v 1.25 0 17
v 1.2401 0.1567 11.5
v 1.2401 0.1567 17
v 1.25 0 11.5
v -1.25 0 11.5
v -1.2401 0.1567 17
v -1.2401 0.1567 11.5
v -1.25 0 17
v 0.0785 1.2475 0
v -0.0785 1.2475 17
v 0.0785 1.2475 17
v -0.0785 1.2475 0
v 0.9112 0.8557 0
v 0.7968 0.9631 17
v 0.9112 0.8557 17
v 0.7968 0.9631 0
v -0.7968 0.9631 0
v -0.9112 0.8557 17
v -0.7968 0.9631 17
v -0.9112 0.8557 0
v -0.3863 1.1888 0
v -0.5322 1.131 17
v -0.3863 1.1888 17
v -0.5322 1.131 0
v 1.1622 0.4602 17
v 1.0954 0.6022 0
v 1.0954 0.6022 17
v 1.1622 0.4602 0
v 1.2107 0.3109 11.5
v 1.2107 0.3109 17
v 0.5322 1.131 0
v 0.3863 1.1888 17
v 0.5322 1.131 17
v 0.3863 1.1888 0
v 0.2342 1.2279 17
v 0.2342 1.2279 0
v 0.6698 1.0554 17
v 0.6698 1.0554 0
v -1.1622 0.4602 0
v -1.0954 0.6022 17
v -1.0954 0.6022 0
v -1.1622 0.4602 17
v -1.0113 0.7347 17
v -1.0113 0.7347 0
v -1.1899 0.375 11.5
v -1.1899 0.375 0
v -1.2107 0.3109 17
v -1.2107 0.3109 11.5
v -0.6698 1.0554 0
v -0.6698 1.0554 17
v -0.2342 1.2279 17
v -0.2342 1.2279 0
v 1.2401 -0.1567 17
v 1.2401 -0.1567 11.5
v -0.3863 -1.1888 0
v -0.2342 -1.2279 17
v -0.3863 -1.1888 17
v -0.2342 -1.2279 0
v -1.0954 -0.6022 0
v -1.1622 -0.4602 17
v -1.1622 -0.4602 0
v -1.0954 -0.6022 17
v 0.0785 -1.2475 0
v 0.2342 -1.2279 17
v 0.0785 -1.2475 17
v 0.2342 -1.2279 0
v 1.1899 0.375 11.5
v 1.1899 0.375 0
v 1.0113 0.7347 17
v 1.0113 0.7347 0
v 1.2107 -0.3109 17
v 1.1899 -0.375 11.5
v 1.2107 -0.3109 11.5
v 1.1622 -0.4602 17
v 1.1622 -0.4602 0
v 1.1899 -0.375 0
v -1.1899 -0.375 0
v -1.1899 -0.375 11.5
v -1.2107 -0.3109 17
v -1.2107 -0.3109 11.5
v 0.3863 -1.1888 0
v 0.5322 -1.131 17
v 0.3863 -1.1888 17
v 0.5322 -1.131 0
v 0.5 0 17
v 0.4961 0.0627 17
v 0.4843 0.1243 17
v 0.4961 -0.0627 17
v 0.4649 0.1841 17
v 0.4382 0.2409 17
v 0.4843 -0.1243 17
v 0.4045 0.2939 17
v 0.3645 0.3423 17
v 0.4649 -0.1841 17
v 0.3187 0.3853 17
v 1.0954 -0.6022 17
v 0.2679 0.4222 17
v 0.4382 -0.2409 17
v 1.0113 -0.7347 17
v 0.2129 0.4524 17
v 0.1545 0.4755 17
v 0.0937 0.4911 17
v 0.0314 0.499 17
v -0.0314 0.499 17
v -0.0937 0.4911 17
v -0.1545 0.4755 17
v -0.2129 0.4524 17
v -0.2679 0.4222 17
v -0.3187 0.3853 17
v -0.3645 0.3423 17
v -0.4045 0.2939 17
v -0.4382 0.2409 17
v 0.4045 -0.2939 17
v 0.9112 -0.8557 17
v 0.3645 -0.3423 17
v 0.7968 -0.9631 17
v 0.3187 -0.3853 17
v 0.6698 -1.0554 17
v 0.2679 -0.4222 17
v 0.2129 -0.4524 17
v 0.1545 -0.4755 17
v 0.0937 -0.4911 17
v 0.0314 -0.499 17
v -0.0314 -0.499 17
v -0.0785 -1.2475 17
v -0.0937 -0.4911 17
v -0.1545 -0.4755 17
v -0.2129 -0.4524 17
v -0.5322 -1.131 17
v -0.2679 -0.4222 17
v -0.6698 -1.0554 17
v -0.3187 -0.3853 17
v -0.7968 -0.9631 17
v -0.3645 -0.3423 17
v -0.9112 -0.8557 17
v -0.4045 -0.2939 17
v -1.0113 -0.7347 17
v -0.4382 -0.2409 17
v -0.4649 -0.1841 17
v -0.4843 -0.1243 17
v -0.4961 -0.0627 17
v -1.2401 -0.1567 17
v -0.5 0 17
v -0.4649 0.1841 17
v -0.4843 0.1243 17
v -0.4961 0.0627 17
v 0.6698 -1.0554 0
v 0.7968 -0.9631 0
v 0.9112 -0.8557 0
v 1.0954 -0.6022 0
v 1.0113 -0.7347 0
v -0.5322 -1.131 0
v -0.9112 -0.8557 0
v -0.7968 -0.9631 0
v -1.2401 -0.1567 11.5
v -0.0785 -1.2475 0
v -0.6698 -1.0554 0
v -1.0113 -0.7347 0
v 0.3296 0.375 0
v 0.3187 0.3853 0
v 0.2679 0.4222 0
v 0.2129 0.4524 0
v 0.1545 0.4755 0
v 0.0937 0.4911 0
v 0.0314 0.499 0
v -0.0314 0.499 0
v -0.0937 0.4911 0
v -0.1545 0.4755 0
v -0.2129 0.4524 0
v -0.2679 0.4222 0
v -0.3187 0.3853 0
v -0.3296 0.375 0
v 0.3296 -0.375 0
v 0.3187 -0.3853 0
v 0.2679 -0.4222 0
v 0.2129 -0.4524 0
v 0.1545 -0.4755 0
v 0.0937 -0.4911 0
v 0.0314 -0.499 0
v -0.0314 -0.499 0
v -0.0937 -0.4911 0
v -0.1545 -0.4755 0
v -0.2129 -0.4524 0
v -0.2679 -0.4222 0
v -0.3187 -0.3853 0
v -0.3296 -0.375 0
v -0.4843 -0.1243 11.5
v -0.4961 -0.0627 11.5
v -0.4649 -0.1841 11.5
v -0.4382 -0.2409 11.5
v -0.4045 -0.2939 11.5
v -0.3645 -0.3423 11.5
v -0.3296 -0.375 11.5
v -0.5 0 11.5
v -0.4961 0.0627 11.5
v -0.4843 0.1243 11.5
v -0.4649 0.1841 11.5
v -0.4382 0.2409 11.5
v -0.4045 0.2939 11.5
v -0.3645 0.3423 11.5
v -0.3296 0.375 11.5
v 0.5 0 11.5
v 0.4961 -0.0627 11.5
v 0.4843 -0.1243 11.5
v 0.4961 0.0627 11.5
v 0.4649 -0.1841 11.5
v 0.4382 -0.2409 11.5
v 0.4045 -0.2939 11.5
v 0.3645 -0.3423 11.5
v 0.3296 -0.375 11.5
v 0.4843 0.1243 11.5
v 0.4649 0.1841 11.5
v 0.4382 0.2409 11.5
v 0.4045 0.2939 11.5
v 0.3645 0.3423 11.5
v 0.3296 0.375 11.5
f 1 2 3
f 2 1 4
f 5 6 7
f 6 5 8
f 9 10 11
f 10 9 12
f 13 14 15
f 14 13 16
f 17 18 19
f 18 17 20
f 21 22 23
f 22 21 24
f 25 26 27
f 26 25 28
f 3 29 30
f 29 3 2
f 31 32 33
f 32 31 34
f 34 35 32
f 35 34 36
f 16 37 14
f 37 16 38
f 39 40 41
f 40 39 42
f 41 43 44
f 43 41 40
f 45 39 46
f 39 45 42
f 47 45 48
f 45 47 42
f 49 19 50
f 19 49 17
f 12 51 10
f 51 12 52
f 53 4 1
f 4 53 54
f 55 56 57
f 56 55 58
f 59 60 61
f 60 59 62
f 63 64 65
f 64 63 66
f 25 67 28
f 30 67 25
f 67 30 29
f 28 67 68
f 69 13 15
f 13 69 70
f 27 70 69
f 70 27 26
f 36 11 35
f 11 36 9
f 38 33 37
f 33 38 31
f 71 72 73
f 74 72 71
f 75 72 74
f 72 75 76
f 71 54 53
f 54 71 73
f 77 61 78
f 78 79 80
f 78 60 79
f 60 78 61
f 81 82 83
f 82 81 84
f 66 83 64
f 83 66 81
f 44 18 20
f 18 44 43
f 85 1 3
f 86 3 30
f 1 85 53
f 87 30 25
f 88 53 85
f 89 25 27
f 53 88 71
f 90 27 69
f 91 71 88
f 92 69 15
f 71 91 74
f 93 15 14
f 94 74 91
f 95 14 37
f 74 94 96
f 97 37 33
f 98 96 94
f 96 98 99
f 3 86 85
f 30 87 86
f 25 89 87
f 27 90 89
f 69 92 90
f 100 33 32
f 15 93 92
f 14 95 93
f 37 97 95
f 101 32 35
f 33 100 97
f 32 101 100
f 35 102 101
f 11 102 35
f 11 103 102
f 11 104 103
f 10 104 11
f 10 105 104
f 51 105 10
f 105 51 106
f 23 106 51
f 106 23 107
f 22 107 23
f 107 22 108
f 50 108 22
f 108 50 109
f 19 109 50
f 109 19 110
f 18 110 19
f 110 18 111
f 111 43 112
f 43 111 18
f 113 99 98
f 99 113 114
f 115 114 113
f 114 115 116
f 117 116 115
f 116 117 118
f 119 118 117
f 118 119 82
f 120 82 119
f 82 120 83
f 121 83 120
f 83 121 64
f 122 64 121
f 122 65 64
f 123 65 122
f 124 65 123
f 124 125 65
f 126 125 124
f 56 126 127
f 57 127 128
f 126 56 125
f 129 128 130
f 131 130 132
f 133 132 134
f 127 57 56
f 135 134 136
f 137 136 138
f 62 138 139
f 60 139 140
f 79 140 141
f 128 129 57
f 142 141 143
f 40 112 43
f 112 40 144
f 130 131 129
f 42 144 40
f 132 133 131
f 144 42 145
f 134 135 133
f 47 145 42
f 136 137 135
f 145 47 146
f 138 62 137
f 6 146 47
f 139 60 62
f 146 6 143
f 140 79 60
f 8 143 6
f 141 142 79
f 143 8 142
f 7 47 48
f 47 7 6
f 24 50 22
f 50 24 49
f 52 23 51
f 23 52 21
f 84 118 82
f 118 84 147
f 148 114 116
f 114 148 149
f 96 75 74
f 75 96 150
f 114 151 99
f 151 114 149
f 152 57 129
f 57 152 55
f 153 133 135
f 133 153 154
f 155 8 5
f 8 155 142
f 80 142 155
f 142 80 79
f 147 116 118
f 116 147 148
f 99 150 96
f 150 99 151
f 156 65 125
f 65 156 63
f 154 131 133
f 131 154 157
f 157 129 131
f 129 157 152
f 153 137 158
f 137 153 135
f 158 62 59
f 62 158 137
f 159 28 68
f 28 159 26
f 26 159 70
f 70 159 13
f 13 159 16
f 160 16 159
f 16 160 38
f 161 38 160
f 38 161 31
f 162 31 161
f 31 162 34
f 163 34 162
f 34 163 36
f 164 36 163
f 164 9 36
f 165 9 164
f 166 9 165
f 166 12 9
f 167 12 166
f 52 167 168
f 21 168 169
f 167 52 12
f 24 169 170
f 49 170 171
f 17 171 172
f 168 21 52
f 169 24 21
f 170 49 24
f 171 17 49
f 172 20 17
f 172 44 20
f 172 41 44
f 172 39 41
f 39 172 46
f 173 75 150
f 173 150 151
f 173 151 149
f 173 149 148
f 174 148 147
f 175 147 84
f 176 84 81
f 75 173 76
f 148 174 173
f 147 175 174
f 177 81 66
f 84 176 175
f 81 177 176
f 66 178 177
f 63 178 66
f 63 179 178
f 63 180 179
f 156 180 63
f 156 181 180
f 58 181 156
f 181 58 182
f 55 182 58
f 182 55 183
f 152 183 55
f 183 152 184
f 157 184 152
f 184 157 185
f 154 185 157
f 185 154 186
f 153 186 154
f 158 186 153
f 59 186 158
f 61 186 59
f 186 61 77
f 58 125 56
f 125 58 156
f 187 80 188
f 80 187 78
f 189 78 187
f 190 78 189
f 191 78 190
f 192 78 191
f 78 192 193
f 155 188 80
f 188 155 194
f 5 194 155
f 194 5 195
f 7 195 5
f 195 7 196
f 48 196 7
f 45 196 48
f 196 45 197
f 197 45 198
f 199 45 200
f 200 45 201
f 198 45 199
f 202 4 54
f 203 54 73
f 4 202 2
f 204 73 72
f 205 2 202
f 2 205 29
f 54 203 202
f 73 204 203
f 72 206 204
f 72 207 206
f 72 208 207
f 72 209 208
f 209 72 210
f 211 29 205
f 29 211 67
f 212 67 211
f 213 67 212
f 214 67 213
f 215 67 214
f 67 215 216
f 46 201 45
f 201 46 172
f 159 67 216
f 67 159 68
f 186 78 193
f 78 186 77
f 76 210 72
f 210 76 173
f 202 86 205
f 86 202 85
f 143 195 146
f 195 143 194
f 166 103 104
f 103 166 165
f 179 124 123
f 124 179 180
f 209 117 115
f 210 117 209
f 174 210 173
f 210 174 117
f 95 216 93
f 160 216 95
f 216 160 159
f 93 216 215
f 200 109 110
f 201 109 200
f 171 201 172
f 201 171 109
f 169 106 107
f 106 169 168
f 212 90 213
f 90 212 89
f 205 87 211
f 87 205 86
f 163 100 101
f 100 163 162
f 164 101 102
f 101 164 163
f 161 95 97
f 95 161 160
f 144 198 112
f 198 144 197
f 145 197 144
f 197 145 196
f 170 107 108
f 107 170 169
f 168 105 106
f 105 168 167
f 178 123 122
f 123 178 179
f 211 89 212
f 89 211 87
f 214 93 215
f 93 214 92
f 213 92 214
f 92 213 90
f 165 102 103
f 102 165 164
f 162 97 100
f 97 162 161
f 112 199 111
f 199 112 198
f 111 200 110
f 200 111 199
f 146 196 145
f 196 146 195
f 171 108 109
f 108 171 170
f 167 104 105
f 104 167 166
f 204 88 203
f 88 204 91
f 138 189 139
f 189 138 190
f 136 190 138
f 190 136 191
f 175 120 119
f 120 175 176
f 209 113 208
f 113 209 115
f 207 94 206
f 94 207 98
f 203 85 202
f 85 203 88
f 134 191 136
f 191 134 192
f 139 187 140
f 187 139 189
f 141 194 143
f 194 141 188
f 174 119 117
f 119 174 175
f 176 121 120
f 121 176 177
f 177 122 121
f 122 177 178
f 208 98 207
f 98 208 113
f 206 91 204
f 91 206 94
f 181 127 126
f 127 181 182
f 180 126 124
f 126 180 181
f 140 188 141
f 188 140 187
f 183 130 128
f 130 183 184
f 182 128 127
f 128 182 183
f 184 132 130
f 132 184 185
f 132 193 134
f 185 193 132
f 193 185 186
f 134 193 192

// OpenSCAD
$fn=50;

difference(){    
    cylinder(h=17, d=2.5);
    translate([0, 0, 5]) cube([50, 1.5*0.5, 13],center=true);
    translate([0, 0, -1]) cylinder(h=200, r=0.5);
}

if(0)
hull(){
    linear_extrude(0.1) square([4,1.8*0.5],center=true);
    translate([0, 0, 12]) linear_extrude(0.1) square([2.5,1.2*0.5],center=true);
}
